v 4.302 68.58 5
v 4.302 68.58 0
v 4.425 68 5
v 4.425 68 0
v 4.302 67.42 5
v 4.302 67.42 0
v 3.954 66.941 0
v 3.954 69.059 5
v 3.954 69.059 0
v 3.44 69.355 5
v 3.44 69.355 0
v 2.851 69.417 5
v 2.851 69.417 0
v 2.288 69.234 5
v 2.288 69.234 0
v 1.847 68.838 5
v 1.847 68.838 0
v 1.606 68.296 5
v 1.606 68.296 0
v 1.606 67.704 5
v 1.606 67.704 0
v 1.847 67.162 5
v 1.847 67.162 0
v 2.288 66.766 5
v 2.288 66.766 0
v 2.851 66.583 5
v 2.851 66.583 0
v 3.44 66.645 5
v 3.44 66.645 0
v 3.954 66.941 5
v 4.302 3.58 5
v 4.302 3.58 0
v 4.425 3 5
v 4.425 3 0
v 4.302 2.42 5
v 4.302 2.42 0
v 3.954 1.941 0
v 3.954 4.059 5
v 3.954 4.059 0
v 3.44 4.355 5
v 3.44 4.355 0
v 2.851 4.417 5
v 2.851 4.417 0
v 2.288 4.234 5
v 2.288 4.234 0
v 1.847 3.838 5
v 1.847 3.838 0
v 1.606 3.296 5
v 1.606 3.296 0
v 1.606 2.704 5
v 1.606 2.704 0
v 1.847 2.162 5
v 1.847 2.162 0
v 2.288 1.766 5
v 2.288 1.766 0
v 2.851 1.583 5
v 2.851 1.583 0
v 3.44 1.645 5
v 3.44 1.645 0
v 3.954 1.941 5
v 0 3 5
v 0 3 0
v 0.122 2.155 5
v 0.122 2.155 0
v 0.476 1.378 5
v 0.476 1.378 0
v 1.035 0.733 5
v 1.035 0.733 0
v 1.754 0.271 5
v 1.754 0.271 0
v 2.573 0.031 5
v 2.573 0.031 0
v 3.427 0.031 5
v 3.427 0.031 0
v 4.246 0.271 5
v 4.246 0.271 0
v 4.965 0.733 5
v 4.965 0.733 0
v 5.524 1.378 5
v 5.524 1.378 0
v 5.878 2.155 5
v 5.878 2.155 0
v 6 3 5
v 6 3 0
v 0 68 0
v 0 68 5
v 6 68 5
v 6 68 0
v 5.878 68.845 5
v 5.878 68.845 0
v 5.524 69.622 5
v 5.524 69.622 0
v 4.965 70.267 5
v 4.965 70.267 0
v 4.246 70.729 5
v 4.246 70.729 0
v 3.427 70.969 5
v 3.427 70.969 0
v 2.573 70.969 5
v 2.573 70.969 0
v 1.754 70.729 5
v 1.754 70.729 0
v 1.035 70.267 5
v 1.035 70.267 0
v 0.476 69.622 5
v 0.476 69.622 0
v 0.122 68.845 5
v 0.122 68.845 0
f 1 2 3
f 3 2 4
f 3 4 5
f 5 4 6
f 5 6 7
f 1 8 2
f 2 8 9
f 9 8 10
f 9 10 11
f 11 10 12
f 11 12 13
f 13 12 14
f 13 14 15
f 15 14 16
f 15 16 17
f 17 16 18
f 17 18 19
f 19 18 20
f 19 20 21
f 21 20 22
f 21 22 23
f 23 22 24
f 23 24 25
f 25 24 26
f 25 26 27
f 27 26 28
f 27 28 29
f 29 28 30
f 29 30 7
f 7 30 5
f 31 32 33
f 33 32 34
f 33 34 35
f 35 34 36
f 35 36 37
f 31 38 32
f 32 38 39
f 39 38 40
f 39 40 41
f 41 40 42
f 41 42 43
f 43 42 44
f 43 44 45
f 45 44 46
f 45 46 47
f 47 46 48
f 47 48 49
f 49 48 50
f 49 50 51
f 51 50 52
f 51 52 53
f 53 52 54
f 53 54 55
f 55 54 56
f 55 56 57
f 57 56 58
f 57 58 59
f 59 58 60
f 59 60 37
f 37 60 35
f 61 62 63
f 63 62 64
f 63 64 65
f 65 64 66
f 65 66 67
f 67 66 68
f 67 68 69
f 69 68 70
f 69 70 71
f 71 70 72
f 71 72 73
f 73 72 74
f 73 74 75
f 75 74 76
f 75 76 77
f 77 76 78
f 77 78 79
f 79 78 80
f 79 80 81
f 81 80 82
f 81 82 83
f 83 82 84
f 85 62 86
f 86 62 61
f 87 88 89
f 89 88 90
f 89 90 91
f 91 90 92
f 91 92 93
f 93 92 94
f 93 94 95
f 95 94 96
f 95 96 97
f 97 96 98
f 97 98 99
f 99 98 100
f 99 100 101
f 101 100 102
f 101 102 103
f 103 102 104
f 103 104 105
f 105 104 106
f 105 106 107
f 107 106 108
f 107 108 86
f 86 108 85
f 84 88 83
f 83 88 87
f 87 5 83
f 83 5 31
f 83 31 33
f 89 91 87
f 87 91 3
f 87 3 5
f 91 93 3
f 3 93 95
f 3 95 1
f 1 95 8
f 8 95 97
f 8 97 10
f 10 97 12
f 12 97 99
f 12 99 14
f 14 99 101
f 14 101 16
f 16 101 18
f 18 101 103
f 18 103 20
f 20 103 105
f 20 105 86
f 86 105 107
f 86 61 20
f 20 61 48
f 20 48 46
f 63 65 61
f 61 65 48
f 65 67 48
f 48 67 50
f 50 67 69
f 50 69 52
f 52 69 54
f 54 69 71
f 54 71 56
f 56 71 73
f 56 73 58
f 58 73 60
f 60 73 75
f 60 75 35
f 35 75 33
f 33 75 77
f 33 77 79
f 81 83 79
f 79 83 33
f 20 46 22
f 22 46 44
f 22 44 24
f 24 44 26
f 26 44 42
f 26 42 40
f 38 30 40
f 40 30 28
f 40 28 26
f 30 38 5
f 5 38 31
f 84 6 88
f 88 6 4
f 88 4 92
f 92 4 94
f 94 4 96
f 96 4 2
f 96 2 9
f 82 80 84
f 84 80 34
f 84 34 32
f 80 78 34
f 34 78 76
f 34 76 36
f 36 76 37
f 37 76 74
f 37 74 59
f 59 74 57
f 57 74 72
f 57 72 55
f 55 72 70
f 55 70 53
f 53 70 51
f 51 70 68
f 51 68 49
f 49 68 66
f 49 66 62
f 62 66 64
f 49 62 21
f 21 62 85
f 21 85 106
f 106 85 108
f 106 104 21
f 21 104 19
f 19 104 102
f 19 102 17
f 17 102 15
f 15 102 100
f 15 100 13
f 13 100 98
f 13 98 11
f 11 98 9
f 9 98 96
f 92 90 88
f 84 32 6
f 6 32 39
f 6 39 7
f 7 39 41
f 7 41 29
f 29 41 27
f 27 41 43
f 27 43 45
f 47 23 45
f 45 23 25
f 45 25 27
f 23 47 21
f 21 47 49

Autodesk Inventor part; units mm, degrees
ref_plane "YZ Plane" through (0, 0, 0) normal (1, 0, 0) x (0, 1, 0)
ref_plane "XZ Plane" through (0, 0, 0) normal (0, 1, 0) x (-1, 0, 0)
ref_plane "XY Plane" through (0, 0, 0) normal (0, 0, 1) x (1, 0, 0)
sketch "Sketch1" plane through (0, 0, 0) normal (0, 0, 1) x (1, 0, 0)
  line L0 (0, 0) -> (6, 0)
  line L1 (6, 0) -> (6, 71)
  line L2 (6, 71) -> (0, 71)
  line L3 (0, 71) -> (0, 0)
  line L4 (3, 0) -> (3, 3)
  circle A0 centre (3, 3) radius 1.425
  circle A1 centre (3, 3) radius 3
  line L5 (3, 71) -> (3, 68)
  circle A2 centre (3, 68) radius 1.425
  circle A3 centre (3, 68) radius 3
  point P0 (6, 3)
  point P1 (6, 68)
  point P2 (0, 68)
  point P3 (0, 3)
  dimension "d10" = 6
  dimension "d11" = 71
  dimension "d12" = 3
  dimension "d13" = 6
  dimension "d14" = 2.85
  dimension "d15" = 3
  dimension "d16" = 6
  dimension "d17" = 2.85
extrude "Extrusion1" add sketch "Sketch1" along normal blind 5 contours A1 | L3 A3 L1 A1 | A3
properties part number "Exoskeleton 1"
